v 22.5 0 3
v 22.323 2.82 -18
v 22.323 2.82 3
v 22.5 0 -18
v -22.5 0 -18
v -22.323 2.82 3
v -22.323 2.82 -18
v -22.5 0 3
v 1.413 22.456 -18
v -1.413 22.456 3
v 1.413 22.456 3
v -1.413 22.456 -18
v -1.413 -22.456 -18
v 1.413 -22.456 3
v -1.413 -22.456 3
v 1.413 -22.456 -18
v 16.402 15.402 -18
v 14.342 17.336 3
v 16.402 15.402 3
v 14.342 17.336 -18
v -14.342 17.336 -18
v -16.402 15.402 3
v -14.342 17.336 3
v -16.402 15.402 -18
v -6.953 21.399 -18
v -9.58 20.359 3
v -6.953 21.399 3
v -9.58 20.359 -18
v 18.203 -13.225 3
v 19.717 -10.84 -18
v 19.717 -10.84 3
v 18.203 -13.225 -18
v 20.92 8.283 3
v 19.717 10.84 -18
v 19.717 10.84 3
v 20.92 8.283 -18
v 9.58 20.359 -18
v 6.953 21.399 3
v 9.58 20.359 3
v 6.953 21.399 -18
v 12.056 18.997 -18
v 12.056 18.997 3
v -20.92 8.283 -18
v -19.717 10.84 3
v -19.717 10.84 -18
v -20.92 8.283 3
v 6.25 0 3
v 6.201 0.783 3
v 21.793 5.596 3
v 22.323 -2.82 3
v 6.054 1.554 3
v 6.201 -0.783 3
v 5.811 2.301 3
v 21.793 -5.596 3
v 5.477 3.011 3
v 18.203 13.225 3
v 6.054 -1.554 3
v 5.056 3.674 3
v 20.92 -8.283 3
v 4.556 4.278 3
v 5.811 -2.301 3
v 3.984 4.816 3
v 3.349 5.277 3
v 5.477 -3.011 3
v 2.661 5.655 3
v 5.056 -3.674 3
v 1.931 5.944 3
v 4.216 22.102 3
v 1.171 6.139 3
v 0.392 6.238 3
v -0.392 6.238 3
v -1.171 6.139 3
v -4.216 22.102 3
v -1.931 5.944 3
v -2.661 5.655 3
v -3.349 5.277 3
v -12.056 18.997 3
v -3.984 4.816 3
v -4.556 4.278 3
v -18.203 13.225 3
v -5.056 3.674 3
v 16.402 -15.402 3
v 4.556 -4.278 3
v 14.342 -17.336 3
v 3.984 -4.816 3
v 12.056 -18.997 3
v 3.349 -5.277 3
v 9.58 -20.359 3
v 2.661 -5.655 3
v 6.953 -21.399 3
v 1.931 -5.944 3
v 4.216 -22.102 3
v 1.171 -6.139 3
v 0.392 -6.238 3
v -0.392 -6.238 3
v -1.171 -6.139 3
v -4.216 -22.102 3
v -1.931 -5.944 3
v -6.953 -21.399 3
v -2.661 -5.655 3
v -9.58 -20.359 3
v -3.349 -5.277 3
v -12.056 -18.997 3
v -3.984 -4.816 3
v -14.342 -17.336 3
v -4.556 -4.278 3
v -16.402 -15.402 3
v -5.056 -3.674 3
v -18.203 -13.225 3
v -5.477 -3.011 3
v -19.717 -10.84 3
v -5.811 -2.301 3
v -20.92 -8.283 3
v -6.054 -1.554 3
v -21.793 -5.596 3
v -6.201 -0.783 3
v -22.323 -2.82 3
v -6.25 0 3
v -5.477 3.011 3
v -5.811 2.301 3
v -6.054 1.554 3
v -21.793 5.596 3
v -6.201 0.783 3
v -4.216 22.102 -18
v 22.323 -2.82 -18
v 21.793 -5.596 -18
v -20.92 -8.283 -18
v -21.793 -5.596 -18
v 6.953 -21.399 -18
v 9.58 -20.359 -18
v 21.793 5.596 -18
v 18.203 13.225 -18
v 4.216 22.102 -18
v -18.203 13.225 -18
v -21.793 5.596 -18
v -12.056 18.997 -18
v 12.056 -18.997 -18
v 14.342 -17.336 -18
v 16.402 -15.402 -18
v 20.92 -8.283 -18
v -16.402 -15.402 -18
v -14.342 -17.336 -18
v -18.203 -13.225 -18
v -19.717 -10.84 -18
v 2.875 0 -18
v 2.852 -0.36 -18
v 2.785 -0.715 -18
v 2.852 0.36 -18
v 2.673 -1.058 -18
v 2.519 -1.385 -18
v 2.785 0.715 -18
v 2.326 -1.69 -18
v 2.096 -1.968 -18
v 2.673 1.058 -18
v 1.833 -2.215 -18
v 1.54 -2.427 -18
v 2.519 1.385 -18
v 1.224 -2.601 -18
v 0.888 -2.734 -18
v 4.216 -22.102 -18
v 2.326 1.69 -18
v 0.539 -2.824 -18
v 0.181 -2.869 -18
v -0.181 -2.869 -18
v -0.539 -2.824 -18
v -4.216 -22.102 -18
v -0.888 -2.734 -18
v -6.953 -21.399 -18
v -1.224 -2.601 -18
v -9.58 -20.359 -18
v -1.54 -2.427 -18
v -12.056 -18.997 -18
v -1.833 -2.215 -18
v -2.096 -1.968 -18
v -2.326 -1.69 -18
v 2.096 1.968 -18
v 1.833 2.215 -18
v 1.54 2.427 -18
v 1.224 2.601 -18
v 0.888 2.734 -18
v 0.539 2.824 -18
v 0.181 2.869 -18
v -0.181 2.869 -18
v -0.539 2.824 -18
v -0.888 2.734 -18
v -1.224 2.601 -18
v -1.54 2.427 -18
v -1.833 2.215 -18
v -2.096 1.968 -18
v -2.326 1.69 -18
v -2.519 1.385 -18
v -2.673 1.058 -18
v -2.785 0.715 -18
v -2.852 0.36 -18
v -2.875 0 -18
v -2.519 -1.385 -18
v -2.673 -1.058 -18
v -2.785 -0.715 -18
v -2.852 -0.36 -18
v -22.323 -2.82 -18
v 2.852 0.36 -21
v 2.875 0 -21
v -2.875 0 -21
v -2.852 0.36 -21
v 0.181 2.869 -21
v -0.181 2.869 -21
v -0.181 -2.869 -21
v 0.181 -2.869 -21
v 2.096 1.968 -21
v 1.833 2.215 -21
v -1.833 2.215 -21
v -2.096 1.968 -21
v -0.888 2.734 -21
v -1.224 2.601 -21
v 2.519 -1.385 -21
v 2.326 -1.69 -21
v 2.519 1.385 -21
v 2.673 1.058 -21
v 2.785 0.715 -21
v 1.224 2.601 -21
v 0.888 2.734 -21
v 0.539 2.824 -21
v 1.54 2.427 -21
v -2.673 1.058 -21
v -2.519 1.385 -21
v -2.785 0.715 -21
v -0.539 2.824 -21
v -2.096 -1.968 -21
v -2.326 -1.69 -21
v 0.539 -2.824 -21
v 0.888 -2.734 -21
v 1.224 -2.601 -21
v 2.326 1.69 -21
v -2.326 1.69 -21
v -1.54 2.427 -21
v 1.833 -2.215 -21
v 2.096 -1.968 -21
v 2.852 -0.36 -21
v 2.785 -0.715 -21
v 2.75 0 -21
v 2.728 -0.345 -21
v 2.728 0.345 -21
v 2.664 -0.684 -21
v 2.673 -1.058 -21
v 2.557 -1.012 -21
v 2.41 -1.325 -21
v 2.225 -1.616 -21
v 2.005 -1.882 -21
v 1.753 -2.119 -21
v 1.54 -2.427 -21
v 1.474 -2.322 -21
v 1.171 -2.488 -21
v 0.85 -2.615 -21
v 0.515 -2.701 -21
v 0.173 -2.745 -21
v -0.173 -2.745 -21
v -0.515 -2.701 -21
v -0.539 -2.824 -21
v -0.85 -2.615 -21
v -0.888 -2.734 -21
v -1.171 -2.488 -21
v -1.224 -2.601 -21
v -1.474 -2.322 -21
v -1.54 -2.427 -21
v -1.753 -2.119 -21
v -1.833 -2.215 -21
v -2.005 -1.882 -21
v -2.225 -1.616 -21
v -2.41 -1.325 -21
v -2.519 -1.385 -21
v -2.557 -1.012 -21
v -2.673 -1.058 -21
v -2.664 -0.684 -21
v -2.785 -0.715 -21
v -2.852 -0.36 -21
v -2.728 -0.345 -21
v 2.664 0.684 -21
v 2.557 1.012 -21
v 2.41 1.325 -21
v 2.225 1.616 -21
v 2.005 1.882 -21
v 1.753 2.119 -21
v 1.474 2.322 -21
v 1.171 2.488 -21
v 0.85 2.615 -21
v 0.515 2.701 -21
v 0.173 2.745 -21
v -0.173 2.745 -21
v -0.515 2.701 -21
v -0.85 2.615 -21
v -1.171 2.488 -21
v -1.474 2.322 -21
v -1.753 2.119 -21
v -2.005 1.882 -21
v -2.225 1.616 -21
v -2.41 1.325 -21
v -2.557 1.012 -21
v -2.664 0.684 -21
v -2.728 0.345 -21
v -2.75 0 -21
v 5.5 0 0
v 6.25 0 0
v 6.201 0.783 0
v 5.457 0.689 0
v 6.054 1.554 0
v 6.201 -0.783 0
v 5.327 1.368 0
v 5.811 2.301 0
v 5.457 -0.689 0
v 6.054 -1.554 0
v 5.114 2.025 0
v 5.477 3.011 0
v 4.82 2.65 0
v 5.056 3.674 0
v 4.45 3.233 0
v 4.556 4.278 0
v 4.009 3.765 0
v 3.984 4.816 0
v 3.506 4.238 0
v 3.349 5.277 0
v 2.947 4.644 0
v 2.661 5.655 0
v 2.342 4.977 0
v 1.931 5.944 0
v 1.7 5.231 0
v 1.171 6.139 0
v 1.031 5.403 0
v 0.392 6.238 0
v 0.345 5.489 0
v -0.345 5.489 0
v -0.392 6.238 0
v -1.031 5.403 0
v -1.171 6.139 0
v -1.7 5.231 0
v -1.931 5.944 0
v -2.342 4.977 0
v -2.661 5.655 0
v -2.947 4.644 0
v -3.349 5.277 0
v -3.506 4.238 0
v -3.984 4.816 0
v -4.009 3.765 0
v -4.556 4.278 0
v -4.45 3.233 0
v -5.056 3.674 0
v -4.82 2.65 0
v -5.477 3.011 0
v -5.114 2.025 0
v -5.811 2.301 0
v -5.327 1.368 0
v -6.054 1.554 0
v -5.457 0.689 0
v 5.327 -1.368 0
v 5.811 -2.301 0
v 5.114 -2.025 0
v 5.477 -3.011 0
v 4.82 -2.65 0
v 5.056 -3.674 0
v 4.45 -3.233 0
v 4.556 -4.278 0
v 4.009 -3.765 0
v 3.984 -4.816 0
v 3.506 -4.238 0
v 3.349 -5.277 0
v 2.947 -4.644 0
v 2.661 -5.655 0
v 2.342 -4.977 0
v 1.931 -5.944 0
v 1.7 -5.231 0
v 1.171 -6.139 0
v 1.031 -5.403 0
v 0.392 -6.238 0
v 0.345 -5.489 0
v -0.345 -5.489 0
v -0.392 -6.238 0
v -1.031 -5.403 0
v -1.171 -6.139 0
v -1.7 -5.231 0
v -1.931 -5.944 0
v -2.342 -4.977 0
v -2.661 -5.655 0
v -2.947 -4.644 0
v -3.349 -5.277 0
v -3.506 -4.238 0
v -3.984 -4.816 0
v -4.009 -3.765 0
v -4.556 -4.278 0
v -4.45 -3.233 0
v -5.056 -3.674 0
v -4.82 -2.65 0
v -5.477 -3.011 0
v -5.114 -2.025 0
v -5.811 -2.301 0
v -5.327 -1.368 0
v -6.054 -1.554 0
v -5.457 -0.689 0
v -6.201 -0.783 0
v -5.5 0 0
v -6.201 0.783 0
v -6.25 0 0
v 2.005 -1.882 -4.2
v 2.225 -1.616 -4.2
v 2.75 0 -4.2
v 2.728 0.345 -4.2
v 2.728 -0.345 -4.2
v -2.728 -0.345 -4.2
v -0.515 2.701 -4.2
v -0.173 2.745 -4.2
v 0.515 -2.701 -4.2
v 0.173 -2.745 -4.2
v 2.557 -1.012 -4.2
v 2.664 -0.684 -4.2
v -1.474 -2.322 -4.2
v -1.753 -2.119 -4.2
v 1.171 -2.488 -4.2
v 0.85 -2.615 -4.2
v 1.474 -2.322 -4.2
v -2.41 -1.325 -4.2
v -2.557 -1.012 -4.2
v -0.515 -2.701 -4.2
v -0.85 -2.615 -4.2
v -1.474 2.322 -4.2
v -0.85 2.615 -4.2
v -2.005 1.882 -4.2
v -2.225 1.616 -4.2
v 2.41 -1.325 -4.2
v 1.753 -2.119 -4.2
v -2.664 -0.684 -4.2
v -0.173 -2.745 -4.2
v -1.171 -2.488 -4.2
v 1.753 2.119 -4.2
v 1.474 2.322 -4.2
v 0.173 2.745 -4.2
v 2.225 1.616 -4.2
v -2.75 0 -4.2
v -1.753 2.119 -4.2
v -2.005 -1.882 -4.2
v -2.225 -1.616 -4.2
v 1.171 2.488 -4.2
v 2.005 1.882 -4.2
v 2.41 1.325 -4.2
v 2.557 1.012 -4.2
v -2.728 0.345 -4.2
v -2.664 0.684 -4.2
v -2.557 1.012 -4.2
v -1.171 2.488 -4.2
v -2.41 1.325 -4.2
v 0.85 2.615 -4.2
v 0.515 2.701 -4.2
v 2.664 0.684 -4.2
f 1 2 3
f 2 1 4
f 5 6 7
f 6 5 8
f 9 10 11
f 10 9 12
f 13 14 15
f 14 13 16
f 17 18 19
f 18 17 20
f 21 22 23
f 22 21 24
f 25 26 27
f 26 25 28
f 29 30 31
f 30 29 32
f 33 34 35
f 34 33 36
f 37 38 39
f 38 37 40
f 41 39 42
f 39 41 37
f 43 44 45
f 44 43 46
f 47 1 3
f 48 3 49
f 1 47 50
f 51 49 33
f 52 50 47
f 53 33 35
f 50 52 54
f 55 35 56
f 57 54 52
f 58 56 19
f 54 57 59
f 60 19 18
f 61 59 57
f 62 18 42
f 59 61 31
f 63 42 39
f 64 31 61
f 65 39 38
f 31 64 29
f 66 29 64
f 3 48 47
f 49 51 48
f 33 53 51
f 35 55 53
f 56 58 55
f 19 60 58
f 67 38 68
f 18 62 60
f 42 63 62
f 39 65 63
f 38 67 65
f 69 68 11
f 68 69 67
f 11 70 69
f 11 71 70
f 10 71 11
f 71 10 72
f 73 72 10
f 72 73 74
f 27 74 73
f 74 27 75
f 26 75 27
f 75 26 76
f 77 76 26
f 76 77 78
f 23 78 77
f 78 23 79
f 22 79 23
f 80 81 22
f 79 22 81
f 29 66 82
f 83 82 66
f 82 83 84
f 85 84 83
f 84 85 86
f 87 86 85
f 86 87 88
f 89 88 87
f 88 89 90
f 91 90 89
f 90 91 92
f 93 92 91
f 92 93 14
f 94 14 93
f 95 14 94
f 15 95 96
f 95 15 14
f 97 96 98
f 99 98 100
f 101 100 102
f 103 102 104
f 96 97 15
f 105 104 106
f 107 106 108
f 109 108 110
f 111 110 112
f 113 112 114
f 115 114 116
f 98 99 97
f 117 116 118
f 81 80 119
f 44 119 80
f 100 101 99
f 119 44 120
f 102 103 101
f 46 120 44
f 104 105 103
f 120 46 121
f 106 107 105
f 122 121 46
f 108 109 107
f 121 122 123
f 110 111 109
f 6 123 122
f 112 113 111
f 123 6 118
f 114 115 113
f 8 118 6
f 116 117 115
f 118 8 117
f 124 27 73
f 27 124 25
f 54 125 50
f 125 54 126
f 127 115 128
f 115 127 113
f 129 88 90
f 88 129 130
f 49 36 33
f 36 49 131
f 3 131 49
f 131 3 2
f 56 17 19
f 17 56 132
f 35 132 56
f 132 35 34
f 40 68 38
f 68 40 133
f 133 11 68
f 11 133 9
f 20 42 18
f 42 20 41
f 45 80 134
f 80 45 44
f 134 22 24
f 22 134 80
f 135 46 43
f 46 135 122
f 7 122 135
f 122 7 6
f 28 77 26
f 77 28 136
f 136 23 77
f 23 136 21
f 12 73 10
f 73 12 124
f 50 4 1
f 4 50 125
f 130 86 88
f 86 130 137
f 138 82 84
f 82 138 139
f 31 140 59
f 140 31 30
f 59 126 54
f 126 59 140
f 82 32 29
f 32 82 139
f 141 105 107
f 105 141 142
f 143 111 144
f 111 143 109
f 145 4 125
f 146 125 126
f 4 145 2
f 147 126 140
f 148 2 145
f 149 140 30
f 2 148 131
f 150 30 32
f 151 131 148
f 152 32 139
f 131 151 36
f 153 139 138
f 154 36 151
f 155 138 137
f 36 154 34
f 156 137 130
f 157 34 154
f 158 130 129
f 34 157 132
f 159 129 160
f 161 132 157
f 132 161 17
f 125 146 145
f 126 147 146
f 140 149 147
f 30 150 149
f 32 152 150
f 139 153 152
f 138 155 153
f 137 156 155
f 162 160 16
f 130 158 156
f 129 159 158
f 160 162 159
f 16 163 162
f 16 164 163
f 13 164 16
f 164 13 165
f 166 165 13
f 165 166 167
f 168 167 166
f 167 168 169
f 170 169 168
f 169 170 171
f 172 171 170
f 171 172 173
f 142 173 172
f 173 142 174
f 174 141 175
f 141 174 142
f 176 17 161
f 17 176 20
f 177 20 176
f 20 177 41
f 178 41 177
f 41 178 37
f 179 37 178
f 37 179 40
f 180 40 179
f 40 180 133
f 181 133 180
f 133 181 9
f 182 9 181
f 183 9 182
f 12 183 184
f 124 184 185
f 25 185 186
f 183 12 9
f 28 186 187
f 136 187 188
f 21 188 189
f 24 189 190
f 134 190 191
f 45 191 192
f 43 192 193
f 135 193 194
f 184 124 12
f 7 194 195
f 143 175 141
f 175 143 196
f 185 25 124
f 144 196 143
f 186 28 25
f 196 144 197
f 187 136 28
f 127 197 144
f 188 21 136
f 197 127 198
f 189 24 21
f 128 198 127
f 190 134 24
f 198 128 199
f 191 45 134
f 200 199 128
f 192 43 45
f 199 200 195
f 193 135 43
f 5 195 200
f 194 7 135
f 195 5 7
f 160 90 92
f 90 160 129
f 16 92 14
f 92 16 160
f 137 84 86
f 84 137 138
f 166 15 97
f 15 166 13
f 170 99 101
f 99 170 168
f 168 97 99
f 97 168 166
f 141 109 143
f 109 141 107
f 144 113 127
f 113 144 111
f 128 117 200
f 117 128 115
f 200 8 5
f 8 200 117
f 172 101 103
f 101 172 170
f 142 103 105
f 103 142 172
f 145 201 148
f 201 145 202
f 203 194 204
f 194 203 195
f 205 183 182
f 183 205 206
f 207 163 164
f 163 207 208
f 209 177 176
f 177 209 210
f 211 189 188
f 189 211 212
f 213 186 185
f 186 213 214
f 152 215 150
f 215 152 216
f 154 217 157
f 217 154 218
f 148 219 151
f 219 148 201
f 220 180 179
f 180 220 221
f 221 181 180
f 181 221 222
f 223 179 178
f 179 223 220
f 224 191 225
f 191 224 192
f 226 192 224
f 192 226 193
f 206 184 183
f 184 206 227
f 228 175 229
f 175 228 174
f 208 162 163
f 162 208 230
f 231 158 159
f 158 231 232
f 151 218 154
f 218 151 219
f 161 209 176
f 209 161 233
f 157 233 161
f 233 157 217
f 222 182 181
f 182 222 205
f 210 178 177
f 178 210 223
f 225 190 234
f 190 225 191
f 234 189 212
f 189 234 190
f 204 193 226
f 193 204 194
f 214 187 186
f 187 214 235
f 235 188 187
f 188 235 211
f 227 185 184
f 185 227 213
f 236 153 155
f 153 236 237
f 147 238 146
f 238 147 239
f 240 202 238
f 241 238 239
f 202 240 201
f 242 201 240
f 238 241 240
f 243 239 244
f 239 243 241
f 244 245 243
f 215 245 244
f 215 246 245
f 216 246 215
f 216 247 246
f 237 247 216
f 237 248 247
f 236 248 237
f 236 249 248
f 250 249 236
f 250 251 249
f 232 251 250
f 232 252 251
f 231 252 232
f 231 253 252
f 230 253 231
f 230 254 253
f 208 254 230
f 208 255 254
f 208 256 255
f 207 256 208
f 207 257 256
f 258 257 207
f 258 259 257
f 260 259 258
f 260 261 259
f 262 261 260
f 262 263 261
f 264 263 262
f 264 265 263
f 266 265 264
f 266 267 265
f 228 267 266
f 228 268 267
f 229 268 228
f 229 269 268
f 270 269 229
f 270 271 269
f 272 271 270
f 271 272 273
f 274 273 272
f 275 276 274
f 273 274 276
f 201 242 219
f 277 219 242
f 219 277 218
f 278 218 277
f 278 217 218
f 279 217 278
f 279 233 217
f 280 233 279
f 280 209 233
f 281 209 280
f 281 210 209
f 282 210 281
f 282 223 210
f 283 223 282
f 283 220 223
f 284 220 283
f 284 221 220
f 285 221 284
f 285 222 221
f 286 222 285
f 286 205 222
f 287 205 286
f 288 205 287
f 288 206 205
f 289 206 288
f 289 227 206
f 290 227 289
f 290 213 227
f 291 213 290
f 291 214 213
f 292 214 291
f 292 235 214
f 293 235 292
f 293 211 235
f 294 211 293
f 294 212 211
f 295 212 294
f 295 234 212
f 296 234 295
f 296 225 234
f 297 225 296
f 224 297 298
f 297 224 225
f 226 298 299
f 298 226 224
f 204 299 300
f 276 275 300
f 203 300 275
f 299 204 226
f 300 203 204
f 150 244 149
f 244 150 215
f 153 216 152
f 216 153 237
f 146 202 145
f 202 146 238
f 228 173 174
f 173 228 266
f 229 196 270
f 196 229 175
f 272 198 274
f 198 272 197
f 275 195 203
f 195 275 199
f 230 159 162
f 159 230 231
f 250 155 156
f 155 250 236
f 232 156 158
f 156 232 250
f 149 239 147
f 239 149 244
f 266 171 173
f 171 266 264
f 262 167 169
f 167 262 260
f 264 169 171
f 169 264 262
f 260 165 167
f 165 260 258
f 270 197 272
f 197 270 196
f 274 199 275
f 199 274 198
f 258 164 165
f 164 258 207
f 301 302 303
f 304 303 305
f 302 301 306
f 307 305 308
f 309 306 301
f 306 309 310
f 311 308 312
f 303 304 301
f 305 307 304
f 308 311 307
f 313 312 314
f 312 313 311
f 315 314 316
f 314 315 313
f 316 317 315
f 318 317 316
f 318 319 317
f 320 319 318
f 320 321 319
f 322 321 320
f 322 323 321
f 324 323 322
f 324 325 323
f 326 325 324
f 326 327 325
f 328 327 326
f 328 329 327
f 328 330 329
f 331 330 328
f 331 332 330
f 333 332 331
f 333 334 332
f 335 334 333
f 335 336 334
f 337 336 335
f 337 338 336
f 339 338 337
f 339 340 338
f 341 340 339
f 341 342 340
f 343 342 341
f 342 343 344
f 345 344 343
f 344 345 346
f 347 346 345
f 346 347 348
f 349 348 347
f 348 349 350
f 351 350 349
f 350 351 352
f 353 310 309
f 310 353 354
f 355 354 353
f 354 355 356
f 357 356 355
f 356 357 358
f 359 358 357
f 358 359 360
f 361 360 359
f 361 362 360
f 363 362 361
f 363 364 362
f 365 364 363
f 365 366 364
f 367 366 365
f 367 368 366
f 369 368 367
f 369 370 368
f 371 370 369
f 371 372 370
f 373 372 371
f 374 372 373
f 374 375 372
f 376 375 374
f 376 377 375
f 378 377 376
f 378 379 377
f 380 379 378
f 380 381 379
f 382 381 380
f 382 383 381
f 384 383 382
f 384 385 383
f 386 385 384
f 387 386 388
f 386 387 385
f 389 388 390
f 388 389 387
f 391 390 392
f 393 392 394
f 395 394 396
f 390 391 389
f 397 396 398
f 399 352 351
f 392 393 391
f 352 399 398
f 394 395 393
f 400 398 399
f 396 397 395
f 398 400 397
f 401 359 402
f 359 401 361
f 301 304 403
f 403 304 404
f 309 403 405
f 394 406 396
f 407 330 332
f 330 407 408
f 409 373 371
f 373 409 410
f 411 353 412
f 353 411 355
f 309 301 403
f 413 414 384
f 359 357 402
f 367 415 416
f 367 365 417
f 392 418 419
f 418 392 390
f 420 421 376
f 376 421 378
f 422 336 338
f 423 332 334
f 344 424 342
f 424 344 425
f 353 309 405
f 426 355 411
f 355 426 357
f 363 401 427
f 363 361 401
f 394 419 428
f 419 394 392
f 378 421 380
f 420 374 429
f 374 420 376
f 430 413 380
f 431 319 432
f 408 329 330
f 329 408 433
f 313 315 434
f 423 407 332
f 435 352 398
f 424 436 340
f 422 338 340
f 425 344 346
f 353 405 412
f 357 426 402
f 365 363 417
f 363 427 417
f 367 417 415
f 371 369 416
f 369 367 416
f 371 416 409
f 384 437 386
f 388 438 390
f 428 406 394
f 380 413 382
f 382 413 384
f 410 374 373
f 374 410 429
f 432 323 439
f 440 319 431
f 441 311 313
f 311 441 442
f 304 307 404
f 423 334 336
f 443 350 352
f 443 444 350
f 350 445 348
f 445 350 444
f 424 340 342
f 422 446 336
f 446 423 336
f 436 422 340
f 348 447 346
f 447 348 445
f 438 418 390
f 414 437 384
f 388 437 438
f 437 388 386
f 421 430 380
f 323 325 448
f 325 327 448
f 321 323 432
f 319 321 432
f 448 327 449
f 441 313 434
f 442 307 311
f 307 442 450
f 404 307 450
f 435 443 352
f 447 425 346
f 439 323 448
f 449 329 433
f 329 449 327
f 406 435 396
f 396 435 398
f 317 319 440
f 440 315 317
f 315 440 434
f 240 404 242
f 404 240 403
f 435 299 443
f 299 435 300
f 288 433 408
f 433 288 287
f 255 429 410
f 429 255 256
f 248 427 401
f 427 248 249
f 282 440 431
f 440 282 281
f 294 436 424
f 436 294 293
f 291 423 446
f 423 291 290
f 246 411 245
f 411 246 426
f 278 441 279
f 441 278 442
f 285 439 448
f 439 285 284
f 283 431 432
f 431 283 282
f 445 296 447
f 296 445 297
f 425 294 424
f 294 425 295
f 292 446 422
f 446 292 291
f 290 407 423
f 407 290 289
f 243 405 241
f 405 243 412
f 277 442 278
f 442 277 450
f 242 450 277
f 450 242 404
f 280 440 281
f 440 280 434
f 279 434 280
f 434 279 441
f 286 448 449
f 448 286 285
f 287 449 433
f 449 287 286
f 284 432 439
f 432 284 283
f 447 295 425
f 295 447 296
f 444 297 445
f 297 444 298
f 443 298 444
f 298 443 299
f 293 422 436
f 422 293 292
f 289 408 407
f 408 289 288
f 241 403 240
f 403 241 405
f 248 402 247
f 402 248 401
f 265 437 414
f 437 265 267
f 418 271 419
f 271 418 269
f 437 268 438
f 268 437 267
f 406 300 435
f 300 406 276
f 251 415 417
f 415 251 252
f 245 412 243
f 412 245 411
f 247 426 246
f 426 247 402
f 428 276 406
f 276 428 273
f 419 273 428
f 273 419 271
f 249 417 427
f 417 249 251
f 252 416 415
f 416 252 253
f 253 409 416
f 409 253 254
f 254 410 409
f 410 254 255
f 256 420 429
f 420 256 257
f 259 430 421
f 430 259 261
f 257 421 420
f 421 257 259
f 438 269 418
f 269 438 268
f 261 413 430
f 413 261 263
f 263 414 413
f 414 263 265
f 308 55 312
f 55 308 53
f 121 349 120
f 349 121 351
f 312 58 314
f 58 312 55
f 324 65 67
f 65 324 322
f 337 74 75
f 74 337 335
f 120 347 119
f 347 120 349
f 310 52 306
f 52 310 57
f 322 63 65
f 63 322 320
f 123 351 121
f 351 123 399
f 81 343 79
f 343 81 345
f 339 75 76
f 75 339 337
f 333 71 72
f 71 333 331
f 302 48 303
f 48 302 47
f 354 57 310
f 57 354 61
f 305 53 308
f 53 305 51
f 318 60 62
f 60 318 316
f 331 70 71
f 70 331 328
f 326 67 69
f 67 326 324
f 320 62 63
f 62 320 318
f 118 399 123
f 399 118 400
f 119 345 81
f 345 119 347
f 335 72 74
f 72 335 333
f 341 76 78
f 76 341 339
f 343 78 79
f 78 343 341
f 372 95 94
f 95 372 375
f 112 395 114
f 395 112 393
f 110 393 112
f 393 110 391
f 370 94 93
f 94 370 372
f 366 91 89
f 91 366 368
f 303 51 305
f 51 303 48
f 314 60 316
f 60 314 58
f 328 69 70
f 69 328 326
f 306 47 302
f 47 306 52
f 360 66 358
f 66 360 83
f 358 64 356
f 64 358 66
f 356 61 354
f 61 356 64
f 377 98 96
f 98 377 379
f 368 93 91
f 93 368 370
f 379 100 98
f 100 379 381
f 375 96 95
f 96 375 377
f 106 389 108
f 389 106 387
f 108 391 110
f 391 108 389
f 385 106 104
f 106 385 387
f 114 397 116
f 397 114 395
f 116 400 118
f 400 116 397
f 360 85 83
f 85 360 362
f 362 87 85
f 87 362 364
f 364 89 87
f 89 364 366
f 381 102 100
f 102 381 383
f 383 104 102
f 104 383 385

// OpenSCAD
$fn = 50;

difference() {
	union() {
		translate(v = [0, 0, -18.0]) {
			cylinder(h = 21, r = 22.5);
		}
		#translate(v = [0, 0, -21.0]) {
			cylinder(h = 21, r = 2.875);
		}
	}
	union() {
		translate(v = [0, 0, 0]) {
			rotate(a = [0, 0, 0]) {
				difference() {
					union() {
						translate(v = [0, 0, -21.0]) {
							cylinder(h = 21, r = 2.25);
						}
						translate(v = [0, 0, -4.2]) {
							cylinder(h = 4.2, r1 = 2.75, r2 = 5.5);
						}
						translate(v = [0, 0, -21.0]) {
							cylinder(h = 21, r = 2.75);
						}
						translate(v = [0, 0, -21.0]) {
							cylinder(h = 21, r = 2.25);
						}
					}
					union();
				}
			}
		}
		#cylinder(h = 3, r = 6.25);
	}
}
